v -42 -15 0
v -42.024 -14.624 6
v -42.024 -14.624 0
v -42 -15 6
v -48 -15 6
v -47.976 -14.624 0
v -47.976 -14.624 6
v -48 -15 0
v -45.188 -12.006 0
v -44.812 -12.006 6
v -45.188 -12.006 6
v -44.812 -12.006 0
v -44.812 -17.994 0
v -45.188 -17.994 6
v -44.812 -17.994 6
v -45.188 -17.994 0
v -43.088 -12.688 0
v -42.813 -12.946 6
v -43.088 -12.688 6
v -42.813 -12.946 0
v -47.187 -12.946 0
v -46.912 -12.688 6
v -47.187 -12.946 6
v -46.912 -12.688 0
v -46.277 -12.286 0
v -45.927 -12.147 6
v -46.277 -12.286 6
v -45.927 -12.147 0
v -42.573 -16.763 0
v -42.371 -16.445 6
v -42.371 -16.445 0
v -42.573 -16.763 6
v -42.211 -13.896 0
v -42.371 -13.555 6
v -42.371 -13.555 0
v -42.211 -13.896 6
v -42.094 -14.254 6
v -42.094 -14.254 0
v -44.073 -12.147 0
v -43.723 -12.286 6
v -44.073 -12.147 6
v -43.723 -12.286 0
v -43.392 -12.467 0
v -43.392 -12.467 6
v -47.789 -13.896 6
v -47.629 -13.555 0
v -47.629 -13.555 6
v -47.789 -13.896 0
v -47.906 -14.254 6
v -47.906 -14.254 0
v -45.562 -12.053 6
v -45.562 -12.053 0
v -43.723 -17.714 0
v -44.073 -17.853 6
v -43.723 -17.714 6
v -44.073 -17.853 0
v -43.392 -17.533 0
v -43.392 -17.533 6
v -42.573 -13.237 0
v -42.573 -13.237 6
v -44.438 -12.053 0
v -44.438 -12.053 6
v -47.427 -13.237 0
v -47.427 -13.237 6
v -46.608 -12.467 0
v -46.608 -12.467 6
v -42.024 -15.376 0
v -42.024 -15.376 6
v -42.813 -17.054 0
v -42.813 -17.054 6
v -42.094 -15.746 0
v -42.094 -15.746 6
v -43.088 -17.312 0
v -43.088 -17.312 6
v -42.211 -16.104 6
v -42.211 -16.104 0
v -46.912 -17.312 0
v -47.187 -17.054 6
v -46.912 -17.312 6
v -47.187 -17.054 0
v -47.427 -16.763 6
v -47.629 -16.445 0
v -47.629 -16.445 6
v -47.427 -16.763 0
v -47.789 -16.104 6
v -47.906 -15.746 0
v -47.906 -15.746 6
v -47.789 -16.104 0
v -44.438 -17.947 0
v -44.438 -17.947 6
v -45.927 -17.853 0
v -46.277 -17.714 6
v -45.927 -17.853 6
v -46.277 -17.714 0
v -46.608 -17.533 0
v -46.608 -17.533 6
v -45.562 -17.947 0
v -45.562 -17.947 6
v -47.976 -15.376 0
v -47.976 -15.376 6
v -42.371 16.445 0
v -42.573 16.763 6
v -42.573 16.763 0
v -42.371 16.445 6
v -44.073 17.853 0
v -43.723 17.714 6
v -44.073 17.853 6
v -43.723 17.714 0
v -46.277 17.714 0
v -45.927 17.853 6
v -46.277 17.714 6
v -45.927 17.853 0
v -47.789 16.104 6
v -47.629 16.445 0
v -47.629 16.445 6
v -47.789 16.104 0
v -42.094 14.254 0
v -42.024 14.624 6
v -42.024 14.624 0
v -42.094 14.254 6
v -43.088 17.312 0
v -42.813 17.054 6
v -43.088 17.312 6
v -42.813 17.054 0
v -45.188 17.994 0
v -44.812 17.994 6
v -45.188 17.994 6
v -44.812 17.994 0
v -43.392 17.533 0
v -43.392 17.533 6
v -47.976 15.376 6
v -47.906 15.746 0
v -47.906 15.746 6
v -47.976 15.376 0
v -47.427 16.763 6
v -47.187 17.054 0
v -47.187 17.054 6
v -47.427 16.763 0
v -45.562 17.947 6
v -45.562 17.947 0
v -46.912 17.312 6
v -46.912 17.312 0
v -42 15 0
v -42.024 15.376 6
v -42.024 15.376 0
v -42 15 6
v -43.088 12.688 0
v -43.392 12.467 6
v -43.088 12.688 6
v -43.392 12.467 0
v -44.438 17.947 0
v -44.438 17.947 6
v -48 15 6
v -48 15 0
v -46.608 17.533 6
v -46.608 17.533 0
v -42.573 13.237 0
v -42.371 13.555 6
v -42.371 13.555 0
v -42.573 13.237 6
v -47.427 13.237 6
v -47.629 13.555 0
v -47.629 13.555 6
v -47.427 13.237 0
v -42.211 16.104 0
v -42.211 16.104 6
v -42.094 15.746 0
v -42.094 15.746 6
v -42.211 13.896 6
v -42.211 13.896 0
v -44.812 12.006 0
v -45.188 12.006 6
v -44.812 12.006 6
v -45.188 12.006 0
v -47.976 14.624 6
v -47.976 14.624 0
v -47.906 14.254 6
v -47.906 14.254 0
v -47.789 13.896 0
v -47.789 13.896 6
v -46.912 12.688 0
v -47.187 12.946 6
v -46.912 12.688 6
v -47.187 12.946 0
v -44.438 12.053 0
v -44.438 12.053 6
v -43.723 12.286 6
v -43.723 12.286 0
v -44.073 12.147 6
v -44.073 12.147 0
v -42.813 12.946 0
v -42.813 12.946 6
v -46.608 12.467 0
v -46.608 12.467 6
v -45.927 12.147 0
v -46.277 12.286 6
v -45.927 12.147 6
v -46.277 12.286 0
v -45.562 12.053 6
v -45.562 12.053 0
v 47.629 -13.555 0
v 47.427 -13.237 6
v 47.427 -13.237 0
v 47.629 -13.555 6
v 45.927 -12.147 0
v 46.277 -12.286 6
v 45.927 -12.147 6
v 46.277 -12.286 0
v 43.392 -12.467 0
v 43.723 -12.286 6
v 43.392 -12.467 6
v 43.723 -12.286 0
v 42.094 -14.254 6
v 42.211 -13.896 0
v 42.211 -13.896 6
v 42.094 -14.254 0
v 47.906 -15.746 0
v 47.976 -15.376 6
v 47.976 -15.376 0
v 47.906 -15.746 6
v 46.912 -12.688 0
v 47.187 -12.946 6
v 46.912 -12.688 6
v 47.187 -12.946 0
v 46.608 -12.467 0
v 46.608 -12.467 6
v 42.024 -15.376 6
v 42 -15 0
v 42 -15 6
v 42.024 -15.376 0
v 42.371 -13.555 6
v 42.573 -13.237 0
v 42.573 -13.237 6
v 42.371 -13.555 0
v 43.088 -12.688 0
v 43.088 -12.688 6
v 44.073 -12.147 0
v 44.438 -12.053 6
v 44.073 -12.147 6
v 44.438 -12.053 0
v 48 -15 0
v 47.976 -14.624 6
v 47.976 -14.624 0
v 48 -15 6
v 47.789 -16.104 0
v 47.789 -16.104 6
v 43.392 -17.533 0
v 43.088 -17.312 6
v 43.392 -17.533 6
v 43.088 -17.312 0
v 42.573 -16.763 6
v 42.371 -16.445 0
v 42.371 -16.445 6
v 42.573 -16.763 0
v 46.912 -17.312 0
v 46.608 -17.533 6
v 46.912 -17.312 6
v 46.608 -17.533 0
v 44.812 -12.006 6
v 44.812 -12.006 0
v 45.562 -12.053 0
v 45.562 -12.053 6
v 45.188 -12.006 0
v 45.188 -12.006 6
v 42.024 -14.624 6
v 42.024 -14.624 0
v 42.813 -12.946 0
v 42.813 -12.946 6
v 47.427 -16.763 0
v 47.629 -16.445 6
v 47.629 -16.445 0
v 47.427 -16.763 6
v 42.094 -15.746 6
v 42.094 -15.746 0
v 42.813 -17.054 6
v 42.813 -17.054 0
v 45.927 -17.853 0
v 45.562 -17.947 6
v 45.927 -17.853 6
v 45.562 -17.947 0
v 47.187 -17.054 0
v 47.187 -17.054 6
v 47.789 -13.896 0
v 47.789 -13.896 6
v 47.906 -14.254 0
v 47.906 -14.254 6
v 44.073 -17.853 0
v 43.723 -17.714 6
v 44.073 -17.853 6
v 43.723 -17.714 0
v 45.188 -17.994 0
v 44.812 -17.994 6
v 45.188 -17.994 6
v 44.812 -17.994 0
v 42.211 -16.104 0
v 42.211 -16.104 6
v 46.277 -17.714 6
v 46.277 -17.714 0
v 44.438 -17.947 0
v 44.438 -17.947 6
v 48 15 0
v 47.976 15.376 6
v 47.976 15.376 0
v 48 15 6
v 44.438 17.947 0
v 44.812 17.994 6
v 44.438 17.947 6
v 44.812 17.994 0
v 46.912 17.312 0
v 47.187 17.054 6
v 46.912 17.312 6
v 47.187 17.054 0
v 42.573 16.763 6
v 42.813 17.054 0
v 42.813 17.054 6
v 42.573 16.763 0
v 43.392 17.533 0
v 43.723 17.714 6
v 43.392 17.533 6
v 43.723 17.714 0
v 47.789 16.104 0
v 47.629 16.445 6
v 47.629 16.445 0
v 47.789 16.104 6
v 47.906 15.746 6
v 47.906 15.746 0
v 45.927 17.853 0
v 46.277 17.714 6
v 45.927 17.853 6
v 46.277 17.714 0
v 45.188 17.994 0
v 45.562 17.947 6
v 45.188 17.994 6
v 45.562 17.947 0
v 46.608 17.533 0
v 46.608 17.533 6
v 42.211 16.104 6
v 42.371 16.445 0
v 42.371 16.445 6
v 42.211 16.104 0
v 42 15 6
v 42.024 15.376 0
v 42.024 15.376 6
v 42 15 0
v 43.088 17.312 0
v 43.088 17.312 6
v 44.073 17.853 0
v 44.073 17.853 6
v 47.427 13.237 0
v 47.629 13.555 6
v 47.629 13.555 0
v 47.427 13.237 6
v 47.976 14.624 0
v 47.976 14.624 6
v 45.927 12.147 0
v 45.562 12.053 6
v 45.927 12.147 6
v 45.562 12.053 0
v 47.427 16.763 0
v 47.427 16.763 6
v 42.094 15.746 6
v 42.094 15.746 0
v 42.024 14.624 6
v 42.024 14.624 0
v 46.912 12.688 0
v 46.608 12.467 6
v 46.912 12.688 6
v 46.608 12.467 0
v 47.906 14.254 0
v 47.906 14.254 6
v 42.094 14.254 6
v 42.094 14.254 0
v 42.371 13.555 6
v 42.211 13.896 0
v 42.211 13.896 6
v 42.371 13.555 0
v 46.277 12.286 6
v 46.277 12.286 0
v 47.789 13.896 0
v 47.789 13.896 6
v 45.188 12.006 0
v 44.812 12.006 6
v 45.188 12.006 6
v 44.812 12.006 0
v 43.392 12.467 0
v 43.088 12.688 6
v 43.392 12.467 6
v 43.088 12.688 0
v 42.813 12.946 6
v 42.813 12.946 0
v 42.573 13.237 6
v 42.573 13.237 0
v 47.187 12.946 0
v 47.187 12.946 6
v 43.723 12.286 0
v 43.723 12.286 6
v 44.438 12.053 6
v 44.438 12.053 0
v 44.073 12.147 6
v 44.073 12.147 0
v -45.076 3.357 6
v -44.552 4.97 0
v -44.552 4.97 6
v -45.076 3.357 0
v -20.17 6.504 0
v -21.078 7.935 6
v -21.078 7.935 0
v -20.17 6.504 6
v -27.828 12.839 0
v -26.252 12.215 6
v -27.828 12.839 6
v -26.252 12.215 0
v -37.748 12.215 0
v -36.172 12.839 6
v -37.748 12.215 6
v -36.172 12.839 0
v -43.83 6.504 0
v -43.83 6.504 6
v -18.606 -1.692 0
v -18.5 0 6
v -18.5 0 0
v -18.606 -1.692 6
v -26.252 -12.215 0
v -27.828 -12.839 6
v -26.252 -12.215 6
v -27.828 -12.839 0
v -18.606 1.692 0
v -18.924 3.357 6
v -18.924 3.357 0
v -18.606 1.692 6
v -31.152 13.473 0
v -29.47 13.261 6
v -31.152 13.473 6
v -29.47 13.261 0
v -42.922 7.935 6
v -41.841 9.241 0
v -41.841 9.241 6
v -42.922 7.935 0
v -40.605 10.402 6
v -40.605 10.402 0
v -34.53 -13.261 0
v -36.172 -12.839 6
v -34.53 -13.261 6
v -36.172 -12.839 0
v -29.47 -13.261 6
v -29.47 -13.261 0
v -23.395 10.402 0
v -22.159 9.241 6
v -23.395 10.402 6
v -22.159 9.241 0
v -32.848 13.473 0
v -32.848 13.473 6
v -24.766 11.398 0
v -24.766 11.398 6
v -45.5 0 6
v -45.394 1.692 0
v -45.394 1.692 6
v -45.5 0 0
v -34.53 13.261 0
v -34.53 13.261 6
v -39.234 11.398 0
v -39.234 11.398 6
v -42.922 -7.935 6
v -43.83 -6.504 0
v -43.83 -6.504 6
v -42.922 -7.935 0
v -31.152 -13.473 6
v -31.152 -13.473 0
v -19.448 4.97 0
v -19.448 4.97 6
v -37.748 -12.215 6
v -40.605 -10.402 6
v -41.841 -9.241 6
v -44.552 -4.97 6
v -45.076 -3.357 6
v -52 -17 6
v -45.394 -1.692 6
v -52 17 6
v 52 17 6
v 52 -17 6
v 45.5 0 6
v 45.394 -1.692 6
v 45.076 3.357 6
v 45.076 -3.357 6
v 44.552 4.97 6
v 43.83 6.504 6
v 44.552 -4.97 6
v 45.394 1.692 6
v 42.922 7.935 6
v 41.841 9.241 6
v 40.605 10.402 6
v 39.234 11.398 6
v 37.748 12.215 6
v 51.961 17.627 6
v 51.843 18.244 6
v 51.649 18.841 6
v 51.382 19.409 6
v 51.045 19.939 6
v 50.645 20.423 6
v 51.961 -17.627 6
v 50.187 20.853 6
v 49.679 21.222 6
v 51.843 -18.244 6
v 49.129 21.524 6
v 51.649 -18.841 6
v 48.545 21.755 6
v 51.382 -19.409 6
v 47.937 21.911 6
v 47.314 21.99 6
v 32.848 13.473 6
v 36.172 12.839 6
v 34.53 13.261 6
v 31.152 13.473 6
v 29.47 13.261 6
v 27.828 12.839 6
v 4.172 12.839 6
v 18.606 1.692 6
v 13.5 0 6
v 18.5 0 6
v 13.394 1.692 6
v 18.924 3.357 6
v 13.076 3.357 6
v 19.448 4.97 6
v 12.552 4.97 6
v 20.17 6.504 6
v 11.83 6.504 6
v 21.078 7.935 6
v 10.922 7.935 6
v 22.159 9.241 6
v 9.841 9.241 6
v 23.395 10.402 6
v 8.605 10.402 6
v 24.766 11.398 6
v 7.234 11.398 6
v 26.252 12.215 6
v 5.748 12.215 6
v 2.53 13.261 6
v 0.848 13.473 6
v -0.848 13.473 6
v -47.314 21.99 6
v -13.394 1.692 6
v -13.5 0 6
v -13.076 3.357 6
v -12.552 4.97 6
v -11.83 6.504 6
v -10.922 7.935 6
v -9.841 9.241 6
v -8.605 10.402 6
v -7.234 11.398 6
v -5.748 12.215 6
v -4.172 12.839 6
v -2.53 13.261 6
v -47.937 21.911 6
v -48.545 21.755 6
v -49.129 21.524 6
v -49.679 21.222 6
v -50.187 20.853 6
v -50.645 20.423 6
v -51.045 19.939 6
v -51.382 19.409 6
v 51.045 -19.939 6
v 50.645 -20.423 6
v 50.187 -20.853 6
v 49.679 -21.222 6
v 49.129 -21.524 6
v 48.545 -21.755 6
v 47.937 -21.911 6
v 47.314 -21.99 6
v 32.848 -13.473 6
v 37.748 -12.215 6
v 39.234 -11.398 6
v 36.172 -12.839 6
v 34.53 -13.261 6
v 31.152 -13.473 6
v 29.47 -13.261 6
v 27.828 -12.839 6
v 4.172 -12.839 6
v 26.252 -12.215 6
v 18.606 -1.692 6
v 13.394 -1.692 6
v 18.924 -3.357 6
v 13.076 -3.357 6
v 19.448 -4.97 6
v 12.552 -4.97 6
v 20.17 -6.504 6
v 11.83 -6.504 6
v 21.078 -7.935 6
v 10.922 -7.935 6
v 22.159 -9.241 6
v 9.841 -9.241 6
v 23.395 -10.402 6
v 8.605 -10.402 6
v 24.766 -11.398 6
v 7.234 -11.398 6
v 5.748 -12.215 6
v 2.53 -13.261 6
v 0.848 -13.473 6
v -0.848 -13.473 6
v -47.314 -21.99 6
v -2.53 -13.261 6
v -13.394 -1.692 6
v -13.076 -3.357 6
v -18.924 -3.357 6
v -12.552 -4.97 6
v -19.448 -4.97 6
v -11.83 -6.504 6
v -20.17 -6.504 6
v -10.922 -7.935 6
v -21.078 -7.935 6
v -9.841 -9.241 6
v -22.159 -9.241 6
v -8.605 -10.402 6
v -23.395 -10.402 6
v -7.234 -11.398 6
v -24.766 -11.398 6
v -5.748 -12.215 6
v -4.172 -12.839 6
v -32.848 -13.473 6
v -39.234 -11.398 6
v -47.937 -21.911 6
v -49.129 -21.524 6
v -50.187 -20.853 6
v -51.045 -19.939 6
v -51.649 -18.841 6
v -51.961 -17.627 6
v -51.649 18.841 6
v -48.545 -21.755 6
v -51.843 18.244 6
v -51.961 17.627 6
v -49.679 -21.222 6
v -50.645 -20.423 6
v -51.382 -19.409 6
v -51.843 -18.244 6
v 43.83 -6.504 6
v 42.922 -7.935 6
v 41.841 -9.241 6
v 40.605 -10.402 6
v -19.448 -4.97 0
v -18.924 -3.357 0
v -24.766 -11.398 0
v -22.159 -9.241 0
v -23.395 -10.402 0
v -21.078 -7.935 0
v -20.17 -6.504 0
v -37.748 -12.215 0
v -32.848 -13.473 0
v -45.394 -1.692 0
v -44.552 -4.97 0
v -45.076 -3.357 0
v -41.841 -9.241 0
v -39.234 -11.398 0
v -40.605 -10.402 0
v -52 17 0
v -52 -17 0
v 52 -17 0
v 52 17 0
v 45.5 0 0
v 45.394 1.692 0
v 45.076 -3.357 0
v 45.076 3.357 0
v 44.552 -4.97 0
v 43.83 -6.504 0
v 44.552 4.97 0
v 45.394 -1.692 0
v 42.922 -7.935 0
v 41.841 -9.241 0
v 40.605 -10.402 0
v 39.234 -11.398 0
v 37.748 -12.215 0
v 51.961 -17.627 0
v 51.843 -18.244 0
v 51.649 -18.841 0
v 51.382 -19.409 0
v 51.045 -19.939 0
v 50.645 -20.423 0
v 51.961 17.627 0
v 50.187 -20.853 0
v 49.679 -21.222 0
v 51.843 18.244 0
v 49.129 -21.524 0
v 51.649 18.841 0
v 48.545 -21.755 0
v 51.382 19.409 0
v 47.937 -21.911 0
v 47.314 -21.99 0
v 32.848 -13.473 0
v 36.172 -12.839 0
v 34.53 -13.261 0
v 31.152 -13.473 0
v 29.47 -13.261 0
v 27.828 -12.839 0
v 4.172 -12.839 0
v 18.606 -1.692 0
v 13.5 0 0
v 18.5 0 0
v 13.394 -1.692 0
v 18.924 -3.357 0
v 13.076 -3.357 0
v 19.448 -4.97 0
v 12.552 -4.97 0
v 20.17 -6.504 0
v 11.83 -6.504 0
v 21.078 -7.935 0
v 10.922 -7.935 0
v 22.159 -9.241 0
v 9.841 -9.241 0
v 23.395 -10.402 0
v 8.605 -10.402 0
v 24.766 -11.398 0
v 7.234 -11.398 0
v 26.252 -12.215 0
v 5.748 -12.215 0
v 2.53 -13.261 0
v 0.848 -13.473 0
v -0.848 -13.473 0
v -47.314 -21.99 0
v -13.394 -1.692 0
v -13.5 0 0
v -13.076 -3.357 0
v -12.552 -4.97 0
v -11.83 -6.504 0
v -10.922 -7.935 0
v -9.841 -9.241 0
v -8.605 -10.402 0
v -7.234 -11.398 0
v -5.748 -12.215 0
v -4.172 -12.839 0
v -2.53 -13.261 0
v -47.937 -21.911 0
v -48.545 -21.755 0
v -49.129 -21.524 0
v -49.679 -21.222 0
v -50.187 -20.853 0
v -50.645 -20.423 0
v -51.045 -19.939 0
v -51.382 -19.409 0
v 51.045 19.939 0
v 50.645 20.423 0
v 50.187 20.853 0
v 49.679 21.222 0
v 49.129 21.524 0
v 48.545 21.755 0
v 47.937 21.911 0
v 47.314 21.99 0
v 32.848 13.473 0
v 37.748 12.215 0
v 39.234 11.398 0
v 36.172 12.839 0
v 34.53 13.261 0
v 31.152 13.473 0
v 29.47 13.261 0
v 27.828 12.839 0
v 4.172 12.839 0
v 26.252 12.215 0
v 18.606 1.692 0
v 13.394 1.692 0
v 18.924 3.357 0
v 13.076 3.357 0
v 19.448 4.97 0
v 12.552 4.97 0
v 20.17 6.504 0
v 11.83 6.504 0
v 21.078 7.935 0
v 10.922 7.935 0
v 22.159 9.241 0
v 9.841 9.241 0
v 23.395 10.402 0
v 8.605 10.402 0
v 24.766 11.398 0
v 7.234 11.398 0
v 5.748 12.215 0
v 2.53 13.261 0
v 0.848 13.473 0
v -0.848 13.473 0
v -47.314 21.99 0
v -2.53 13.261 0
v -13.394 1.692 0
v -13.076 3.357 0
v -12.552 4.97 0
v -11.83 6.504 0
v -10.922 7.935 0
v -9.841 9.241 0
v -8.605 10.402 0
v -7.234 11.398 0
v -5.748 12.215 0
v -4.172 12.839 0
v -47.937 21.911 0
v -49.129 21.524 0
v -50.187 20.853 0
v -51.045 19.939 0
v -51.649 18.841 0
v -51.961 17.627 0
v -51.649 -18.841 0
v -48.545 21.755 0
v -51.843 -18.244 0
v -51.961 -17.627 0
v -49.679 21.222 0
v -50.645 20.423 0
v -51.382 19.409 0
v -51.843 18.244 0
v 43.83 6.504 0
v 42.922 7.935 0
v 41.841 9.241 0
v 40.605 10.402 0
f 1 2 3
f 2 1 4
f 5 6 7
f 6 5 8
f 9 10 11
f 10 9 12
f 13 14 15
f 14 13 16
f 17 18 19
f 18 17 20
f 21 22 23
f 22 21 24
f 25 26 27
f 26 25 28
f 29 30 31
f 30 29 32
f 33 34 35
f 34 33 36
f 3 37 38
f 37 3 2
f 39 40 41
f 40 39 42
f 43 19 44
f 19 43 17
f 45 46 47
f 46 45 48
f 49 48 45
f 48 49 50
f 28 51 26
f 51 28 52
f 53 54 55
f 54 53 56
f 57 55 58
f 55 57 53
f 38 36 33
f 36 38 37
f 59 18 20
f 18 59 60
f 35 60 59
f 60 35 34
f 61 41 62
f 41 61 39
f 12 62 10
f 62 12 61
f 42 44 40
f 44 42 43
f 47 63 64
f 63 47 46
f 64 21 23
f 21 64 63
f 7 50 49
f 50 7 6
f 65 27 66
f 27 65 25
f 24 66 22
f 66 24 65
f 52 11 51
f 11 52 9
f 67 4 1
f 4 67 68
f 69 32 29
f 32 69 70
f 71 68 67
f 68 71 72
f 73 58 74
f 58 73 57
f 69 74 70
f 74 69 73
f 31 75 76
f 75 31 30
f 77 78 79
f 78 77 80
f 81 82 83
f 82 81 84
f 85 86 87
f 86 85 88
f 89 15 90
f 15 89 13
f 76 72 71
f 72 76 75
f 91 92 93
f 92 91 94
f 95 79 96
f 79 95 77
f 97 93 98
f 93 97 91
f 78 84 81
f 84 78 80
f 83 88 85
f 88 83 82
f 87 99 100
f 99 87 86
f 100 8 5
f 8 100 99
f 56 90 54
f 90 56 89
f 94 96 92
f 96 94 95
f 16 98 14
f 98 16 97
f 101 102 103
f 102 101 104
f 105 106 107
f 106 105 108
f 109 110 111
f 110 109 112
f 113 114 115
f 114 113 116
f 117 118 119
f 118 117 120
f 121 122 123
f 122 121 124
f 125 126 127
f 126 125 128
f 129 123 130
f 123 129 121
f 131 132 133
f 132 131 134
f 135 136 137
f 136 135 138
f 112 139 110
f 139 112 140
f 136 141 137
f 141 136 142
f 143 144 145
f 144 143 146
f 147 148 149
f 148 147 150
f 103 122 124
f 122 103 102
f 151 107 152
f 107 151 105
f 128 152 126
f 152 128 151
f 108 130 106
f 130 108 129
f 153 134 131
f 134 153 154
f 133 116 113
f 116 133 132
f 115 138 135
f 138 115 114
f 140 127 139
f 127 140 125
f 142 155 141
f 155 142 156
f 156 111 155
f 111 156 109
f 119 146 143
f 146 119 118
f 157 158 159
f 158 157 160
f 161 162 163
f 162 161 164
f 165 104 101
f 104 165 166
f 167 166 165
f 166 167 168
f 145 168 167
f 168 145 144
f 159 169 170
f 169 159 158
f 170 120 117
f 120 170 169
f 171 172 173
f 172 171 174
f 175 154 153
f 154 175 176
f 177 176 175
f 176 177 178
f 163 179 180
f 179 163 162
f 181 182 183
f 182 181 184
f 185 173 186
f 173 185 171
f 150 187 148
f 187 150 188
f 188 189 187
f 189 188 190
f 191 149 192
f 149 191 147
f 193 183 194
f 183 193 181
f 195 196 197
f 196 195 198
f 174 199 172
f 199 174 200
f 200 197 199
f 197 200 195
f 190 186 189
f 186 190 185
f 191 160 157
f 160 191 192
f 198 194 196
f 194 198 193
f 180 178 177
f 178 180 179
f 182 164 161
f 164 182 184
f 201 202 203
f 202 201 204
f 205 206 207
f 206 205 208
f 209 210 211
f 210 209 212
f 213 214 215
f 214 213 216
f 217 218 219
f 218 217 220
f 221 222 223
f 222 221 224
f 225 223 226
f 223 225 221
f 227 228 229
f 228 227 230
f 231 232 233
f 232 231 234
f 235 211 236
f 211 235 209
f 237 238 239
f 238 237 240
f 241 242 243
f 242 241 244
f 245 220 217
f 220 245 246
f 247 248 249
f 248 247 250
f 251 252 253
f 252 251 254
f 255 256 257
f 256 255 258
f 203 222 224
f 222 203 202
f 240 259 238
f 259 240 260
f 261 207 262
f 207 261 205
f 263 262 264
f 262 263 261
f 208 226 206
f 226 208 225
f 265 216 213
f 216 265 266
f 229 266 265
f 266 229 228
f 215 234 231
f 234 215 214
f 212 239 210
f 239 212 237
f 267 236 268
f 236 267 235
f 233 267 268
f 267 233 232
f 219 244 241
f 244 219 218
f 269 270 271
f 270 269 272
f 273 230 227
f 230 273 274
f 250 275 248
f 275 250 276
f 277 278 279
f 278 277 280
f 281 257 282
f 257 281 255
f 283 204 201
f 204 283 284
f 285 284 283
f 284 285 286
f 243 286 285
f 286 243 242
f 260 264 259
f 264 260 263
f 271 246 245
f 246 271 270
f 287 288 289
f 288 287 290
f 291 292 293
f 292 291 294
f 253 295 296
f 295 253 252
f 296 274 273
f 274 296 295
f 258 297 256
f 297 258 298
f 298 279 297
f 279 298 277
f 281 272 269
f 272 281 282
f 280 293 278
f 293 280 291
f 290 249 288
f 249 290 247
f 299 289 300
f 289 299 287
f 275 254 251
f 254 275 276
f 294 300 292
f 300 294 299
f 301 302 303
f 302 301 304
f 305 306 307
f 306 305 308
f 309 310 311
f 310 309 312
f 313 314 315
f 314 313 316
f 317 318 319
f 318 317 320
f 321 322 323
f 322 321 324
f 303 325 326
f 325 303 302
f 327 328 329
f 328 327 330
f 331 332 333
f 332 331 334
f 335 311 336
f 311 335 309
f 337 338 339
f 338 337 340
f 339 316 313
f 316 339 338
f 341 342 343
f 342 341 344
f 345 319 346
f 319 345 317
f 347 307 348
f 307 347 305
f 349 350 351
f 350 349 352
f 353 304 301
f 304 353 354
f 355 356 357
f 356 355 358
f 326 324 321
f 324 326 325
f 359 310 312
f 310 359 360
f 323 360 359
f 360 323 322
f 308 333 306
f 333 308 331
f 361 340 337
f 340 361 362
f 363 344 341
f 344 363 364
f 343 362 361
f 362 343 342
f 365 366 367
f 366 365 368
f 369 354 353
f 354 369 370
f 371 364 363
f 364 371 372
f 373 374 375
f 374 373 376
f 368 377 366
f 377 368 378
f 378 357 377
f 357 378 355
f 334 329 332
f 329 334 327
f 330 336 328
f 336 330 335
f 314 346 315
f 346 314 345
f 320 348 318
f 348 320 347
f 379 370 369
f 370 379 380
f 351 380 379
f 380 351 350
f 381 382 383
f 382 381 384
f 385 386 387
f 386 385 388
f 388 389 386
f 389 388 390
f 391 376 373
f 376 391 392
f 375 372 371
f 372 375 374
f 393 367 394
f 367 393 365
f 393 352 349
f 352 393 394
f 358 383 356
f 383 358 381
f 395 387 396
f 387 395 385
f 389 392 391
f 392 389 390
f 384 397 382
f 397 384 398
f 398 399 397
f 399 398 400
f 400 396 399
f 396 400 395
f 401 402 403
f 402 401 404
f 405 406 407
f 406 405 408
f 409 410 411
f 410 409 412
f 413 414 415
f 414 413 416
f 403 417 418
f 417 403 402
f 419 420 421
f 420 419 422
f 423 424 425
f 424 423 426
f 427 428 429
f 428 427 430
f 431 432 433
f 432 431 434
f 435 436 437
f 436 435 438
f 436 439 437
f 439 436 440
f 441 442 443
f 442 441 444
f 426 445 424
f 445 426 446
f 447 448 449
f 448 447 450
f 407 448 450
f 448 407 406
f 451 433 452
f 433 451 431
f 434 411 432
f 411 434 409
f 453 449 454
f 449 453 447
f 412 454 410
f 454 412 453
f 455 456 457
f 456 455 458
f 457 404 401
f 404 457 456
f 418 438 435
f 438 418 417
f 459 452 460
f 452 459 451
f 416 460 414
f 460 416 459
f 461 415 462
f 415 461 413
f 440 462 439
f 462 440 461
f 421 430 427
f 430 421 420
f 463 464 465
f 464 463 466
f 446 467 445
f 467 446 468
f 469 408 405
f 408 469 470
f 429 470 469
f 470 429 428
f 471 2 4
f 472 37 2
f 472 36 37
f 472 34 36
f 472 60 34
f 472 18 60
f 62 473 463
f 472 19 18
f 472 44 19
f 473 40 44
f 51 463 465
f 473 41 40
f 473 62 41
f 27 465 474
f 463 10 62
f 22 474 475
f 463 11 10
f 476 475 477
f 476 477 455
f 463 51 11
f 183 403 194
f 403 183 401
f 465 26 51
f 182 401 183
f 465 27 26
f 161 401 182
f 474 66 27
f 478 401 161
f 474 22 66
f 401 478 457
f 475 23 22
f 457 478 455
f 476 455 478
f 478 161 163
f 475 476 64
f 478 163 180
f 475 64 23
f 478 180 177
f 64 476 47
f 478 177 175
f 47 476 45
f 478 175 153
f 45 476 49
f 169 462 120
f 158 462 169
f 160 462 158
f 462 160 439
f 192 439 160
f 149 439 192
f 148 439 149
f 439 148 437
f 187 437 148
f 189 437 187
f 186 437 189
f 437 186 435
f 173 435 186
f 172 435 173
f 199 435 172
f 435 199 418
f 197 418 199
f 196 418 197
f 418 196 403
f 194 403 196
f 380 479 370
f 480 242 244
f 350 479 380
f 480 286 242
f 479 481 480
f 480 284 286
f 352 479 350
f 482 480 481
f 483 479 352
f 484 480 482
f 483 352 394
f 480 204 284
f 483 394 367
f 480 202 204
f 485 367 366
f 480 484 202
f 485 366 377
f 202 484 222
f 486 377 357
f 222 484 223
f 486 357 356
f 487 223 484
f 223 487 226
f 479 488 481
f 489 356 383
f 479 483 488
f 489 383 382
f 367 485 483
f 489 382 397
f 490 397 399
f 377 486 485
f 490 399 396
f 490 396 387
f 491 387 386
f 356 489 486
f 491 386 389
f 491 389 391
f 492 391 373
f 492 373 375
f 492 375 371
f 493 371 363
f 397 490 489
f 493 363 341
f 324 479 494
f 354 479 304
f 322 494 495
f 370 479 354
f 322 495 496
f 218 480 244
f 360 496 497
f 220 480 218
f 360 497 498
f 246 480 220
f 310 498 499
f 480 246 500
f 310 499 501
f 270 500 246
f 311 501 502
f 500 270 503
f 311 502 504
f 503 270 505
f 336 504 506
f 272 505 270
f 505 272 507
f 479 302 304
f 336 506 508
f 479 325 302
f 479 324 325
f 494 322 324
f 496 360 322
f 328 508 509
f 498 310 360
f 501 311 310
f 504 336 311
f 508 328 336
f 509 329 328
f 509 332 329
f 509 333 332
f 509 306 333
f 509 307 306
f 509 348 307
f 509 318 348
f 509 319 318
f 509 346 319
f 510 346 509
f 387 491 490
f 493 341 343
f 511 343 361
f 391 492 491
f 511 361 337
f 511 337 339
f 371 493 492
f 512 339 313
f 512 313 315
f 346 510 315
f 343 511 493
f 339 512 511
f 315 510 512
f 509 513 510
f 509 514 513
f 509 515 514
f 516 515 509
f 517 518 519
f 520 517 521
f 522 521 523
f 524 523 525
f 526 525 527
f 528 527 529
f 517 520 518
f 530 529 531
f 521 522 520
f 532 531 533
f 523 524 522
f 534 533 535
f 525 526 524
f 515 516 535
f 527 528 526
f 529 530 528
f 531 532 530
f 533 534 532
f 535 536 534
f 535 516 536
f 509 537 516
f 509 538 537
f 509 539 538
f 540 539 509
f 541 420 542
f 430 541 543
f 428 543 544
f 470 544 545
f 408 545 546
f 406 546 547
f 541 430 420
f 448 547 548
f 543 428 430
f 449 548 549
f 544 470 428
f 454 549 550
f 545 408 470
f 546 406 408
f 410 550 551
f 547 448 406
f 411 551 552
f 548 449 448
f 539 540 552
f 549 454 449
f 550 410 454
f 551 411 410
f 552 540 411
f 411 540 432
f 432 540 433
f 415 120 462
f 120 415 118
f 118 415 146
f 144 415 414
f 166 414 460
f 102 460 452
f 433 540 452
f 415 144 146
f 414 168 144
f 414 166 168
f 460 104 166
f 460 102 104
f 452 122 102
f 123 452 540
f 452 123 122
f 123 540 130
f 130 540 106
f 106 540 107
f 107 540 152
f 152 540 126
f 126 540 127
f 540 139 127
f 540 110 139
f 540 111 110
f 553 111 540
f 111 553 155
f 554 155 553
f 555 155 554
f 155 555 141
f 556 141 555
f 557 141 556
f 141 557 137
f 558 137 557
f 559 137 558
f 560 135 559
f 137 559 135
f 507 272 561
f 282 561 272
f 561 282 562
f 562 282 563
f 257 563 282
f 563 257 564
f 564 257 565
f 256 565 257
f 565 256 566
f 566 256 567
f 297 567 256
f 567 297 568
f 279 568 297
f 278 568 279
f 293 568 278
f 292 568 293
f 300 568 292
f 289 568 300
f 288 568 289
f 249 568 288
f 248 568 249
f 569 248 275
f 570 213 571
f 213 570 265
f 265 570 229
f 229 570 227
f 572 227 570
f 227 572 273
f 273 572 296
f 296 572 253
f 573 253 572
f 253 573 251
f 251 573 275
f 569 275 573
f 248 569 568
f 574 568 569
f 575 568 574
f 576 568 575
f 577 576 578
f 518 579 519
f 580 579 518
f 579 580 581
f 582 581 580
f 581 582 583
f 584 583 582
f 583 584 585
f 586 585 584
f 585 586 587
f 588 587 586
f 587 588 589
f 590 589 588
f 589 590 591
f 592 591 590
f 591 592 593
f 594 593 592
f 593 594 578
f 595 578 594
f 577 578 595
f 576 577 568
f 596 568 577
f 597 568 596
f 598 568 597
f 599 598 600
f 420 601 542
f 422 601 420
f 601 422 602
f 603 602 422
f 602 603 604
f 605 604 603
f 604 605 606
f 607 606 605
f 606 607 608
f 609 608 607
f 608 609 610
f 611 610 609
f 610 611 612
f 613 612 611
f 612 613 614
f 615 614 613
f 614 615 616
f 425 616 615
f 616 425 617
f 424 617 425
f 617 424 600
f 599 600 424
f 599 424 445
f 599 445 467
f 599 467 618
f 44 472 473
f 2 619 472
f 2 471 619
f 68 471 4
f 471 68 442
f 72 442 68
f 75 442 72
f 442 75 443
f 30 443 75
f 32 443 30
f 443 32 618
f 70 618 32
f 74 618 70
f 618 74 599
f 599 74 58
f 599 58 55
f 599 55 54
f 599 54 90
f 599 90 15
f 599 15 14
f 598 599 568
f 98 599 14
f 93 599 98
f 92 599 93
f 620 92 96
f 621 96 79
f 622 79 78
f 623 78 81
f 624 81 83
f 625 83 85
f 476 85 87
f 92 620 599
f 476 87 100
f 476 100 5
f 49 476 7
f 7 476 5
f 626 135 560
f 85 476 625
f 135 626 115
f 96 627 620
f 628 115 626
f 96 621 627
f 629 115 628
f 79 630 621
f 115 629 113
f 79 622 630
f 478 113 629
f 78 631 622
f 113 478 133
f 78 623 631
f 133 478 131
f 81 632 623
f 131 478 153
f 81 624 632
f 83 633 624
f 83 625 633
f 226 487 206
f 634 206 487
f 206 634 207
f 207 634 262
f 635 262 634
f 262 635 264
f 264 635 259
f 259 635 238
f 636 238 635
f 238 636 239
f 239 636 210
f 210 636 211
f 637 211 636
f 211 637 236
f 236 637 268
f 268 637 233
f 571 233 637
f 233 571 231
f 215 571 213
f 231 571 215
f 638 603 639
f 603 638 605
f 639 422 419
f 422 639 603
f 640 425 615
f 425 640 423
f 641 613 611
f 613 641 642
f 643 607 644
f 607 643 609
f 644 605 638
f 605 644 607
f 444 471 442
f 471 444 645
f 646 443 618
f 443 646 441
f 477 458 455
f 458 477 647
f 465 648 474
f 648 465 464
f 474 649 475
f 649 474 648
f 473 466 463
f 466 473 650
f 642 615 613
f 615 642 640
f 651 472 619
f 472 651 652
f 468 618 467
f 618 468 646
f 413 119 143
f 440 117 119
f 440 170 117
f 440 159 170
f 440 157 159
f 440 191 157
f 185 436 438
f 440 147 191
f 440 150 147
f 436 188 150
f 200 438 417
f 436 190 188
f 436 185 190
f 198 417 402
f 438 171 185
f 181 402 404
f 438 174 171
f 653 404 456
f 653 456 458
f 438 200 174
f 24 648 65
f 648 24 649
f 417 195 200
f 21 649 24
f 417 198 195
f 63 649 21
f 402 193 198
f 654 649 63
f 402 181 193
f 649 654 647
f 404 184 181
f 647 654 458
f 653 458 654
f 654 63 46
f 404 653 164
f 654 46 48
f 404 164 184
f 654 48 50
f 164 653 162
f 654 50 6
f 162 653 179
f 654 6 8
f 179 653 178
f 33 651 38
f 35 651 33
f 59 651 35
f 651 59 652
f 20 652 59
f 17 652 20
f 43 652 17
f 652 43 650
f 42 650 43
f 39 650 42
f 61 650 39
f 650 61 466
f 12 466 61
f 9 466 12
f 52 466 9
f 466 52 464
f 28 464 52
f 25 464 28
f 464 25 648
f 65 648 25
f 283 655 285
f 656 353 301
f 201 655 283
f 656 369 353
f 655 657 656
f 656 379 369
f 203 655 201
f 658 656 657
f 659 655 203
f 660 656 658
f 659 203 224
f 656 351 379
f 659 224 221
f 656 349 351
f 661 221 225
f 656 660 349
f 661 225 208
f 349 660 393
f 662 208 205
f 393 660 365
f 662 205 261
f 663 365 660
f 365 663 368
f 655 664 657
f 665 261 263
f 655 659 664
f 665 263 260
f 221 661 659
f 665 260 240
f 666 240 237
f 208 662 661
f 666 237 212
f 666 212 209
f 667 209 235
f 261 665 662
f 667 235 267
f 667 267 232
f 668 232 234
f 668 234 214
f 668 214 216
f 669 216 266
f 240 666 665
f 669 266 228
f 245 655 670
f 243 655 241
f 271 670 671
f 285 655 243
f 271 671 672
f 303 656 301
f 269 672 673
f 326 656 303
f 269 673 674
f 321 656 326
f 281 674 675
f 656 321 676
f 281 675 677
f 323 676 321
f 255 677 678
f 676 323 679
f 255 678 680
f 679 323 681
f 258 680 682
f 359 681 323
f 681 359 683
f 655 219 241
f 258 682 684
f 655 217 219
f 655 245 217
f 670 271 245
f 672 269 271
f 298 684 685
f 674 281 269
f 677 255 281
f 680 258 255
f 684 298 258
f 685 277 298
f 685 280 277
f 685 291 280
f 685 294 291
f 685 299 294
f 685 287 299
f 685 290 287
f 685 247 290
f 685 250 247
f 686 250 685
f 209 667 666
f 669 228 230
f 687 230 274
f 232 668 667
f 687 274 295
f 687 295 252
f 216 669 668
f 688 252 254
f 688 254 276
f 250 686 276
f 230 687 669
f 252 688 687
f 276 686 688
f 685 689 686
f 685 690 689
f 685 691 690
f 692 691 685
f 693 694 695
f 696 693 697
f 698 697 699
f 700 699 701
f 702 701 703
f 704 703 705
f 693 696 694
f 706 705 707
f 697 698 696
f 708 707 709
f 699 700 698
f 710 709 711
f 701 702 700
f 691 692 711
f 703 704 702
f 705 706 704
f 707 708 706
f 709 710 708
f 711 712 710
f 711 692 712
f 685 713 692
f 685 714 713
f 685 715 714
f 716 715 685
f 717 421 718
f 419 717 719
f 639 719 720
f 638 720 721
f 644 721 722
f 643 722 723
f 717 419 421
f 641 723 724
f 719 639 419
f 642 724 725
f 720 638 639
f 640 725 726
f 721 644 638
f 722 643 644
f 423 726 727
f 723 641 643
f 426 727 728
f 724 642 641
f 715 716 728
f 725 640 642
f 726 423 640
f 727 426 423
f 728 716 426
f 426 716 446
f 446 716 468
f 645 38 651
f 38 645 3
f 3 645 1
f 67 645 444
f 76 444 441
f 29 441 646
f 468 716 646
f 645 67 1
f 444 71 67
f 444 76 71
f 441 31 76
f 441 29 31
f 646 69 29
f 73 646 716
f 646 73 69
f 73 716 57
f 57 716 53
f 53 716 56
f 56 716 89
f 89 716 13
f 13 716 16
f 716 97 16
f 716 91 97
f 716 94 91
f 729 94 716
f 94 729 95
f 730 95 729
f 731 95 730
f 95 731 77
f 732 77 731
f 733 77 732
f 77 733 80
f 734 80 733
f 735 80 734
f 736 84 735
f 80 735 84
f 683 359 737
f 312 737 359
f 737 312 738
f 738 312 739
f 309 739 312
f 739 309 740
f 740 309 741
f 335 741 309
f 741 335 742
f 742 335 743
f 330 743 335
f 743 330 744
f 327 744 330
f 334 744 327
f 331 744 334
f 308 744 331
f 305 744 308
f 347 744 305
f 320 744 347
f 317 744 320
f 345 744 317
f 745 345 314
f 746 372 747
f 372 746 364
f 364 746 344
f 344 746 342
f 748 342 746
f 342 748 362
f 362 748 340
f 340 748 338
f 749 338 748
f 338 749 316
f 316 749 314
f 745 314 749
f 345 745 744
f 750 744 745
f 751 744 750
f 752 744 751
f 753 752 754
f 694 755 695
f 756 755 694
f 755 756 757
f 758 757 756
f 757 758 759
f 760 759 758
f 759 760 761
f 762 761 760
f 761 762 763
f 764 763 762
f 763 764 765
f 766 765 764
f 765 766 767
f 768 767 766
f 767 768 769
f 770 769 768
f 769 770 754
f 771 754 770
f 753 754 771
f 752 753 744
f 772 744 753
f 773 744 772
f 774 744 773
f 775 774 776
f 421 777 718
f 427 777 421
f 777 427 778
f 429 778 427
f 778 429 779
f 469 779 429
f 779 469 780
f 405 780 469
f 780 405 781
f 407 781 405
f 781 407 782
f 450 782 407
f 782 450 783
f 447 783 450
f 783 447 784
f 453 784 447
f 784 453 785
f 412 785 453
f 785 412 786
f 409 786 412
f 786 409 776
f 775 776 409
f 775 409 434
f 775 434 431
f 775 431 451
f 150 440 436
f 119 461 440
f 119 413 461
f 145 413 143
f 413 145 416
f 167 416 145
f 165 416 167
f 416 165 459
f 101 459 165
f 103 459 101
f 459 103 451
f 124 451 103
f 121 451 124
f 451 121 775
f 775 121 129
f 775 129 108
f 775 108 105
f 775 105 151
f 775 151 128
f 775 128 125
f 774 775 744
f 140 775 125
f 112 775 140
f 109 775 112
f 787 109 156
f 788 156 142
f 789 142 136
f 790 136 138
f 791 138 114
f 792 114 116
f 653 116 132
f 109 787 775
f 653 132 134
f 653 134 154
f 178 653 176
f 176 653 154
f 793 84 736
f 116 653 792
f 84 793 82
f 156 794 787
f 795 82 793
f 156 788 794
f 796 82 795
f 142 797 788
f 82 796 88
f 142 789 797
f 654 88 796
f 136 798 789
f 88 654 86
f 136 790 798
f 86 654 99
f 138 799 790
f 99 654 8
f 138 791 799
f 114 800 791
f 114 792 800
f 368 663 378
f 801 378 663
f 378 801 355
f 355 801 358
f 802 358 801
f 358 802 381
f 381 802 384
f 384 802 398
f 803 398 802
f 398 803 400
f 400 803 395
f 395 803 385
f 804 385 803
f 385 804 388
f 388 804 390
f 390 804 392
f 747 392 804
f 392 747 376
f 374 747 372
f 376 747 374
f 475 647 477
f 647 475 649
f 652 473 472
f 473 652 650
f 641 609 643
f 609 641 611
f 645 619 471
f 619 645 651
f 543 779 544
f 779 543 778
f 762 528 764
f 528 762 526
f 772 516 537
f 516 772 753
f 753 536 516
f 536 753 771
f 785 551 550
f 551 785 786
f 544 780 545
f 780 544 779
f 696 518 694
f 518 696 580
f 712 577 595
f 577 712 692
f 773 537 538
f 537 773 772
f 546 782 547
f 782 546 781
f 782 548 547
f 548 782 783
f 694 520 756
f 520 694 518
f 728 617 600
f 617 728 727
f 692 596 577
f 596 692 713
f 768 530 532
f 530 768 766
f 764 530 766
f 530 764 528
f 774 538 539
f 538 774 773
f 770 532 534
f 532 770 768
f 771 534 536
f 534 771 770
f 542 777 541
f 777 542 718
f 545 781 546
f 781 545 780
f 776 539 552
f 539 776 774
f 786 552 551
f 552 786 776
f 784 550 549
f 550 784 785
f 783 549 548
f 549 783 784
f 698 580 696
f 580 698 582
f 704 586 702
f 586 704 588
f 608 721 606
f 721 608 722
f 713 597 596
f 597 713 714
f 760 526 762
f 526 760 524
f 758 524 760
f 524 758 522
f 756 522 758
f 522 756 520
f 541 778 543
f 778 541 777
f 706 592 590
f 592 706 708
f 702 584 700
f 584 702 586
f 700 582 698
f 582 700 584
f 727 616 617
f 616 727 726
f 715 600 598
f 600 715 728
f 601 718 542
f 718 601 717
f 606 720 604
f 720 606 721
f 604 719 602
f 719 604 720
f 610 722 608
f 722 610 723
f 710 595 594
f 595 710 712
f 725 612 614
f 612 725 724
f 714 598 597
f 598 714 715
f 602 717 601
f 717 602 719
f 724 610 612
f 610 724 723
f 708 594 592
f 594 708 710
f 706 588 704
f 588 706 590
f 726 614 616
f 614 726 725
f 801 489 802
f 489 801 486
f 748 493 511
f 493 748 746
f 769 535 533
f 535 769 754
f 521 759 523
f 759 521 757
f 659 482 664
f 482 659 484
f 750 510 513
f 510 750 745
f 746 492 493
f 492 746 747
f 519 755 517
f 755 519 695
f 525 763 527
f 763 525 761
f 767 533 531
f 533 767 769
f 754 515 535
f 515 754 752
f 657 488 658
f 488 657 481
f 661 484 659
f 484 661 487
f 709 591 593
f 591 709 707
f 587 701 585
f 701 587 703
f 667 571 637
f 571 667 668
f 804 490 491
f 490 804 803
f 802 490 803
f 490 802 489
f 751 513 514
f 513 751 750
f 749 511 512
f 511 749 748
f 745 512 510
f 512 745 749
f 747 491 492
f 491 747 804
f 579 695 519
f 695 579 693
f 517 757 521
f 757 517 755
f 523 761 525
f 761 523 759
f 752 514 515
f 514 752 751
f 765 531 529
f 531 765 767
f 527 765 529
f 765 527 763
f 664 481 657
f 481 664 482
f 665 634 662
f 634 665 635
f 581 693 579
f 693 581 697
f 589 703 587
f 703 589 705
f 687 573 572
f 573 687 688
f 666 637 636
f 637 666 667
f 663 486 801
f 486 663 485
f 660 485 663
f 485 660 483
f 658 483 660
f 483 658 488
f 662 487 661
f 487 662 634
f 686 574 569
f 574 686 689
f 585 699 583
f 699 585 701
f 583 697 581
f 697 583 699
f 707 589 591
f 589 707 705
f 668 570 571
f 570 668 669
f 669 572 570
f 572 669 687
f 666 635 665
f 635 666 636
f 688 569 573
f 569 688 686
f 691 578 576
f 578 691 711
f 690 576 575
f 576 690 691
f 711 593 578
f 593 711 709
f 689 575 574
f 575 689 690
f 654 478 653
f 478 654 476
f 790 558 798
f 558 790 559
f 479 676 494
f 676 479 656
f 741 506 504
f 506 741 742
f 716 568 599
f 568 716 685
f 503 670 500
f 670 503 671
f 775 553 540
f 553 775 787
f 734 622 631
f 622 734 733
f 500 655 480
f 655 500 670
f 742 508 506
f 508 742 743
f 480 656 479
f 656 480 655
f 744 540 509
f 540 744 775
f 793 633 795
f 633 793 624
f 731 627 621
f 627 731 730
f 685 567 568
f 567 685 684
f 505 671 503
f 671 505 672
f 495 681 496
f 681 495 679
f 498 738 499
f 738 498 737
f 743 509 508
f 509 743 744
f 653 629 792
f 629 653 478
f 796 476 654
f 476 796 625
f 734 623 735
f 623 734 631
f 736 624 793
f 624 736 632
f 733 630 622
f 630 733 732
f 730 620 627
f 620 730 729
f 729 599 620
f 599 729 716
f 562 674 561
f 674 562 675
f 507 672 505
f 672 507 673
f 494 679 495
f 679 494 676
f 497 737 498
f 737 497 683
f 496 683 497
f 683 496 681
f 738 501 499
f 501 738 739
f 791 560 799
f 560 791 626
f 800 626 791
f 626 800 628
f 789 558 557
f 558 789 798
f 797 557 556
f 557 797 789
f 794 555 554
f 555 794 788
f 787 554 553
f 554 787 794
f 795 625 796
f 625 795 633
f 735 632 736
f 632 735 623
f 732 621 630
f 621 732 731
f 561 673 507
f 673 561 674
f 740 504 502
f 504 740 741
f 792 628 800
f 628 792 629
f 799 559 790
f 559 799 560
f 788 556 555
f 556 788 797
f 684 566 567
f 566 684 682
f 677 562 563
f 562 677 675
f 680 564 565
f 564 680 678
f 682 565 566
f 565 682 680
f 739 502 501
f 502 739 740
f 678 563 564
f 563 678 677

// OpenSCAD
$fn = 50;


difference() {
	union() {
		hull() {
			translate(v = [-47.0000000000, 17.0000000000, 0]) {
				cylinder(h = 6, r = 5);
			}
			translate(v = [47.0000000000, 17.0000000000, 0]) {
				cylinder(h = 6, r = 5);
			}
			translate(v = [-47.0000000000, -17.0000000000, 0]) {
				cylinder(h = 6, r = 5);
			}
			translate(v = [47.0000000000, -17.0000000000, 0]) {
				cylinder(h = 6, r = 5);
			}
		}
	}
	union() {
		#translate(v = [-45.0000000000, -15.0000000000, -100.0000000000]) {
			cylinder(h = 200, r = 3.0000000000);
		}
		#translate(v = [-45.0000000000, 15.0000000000, -100.0000000000]) {
			cylinder(h = 200, r = 3.0000000000);
		}
		#translate(v = [45.0000000000, -15.0000000000, -100.0000000000]) {
			cylinder(h = 200, r = 3.0000000000);
		}
		#translate(v = [45.0000000000, 15.0000000000, -100.0000000000]) {
			cylinder(h = 200, r = 3.0000000000);
		}
		#translate(v = [-32.0000000000, 0, 0]) {
			cylinder(h = 6, r = 13.5000000000);
		}
		#cylinder(h = 6, r = 13.5000000000);
		#translate(v = [32.0000000000, 0, 0]) {
			cylinder(h = 6, r = 13.5000000000);
		}
	}
}
